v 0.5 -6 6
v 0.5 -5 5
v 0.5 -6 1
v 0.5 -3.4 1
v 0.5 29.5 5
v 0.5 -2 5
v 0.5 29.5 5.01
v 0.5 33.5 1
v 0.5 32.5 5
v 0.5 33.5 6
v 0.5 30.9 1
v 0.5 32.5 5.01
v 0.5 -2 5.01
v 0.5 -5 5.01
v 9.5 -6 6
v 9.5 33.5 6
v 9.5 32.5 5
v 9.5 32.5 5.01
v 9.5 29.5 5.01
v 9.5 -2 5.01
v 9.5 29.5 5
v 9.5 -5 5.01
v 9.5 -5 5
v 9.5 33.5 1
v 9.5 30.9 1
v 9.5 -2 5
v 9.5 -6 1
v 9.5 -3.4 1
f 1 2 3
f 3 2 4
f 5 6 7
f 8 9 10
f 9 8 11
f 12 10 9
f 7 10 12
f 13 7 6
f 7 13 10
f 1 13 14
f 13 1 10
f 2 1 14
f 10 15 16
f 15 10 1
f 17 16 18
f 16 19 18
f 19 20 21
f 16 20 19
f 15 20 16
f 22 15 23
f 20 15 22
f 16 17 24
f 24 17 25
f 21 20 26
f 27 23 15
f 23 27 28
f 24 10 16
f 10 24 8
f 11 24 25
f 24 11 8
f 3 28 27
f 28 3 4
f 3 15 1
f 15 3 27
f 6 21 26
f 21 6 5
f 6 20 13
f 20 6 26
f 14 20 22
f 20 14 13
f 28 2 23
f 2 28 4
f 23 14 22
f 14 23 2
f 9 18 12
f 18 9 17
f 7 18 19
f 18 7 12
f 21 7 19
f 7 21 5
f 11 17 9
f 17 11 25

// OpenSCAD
difference() {
    translate([0.5, -6, 1])
    cube([9, 39.5, 5]);
    
    
    translate([0, -3, -5])
    cube([10, 33, 10]);
    
translate([0, -3, 0])
    hull() {
        cube([10, 1, 5]);    
        translate([0, -2, 5])
            cube([10, 3, 0.01]);    

    }
    
translate([0, 34.5-5, 0])
    hull() {
        cube([10, 1, 5]);    
        translate([0, 0, 5])
            cube([10, 3, 0.01]);    

    }



}
